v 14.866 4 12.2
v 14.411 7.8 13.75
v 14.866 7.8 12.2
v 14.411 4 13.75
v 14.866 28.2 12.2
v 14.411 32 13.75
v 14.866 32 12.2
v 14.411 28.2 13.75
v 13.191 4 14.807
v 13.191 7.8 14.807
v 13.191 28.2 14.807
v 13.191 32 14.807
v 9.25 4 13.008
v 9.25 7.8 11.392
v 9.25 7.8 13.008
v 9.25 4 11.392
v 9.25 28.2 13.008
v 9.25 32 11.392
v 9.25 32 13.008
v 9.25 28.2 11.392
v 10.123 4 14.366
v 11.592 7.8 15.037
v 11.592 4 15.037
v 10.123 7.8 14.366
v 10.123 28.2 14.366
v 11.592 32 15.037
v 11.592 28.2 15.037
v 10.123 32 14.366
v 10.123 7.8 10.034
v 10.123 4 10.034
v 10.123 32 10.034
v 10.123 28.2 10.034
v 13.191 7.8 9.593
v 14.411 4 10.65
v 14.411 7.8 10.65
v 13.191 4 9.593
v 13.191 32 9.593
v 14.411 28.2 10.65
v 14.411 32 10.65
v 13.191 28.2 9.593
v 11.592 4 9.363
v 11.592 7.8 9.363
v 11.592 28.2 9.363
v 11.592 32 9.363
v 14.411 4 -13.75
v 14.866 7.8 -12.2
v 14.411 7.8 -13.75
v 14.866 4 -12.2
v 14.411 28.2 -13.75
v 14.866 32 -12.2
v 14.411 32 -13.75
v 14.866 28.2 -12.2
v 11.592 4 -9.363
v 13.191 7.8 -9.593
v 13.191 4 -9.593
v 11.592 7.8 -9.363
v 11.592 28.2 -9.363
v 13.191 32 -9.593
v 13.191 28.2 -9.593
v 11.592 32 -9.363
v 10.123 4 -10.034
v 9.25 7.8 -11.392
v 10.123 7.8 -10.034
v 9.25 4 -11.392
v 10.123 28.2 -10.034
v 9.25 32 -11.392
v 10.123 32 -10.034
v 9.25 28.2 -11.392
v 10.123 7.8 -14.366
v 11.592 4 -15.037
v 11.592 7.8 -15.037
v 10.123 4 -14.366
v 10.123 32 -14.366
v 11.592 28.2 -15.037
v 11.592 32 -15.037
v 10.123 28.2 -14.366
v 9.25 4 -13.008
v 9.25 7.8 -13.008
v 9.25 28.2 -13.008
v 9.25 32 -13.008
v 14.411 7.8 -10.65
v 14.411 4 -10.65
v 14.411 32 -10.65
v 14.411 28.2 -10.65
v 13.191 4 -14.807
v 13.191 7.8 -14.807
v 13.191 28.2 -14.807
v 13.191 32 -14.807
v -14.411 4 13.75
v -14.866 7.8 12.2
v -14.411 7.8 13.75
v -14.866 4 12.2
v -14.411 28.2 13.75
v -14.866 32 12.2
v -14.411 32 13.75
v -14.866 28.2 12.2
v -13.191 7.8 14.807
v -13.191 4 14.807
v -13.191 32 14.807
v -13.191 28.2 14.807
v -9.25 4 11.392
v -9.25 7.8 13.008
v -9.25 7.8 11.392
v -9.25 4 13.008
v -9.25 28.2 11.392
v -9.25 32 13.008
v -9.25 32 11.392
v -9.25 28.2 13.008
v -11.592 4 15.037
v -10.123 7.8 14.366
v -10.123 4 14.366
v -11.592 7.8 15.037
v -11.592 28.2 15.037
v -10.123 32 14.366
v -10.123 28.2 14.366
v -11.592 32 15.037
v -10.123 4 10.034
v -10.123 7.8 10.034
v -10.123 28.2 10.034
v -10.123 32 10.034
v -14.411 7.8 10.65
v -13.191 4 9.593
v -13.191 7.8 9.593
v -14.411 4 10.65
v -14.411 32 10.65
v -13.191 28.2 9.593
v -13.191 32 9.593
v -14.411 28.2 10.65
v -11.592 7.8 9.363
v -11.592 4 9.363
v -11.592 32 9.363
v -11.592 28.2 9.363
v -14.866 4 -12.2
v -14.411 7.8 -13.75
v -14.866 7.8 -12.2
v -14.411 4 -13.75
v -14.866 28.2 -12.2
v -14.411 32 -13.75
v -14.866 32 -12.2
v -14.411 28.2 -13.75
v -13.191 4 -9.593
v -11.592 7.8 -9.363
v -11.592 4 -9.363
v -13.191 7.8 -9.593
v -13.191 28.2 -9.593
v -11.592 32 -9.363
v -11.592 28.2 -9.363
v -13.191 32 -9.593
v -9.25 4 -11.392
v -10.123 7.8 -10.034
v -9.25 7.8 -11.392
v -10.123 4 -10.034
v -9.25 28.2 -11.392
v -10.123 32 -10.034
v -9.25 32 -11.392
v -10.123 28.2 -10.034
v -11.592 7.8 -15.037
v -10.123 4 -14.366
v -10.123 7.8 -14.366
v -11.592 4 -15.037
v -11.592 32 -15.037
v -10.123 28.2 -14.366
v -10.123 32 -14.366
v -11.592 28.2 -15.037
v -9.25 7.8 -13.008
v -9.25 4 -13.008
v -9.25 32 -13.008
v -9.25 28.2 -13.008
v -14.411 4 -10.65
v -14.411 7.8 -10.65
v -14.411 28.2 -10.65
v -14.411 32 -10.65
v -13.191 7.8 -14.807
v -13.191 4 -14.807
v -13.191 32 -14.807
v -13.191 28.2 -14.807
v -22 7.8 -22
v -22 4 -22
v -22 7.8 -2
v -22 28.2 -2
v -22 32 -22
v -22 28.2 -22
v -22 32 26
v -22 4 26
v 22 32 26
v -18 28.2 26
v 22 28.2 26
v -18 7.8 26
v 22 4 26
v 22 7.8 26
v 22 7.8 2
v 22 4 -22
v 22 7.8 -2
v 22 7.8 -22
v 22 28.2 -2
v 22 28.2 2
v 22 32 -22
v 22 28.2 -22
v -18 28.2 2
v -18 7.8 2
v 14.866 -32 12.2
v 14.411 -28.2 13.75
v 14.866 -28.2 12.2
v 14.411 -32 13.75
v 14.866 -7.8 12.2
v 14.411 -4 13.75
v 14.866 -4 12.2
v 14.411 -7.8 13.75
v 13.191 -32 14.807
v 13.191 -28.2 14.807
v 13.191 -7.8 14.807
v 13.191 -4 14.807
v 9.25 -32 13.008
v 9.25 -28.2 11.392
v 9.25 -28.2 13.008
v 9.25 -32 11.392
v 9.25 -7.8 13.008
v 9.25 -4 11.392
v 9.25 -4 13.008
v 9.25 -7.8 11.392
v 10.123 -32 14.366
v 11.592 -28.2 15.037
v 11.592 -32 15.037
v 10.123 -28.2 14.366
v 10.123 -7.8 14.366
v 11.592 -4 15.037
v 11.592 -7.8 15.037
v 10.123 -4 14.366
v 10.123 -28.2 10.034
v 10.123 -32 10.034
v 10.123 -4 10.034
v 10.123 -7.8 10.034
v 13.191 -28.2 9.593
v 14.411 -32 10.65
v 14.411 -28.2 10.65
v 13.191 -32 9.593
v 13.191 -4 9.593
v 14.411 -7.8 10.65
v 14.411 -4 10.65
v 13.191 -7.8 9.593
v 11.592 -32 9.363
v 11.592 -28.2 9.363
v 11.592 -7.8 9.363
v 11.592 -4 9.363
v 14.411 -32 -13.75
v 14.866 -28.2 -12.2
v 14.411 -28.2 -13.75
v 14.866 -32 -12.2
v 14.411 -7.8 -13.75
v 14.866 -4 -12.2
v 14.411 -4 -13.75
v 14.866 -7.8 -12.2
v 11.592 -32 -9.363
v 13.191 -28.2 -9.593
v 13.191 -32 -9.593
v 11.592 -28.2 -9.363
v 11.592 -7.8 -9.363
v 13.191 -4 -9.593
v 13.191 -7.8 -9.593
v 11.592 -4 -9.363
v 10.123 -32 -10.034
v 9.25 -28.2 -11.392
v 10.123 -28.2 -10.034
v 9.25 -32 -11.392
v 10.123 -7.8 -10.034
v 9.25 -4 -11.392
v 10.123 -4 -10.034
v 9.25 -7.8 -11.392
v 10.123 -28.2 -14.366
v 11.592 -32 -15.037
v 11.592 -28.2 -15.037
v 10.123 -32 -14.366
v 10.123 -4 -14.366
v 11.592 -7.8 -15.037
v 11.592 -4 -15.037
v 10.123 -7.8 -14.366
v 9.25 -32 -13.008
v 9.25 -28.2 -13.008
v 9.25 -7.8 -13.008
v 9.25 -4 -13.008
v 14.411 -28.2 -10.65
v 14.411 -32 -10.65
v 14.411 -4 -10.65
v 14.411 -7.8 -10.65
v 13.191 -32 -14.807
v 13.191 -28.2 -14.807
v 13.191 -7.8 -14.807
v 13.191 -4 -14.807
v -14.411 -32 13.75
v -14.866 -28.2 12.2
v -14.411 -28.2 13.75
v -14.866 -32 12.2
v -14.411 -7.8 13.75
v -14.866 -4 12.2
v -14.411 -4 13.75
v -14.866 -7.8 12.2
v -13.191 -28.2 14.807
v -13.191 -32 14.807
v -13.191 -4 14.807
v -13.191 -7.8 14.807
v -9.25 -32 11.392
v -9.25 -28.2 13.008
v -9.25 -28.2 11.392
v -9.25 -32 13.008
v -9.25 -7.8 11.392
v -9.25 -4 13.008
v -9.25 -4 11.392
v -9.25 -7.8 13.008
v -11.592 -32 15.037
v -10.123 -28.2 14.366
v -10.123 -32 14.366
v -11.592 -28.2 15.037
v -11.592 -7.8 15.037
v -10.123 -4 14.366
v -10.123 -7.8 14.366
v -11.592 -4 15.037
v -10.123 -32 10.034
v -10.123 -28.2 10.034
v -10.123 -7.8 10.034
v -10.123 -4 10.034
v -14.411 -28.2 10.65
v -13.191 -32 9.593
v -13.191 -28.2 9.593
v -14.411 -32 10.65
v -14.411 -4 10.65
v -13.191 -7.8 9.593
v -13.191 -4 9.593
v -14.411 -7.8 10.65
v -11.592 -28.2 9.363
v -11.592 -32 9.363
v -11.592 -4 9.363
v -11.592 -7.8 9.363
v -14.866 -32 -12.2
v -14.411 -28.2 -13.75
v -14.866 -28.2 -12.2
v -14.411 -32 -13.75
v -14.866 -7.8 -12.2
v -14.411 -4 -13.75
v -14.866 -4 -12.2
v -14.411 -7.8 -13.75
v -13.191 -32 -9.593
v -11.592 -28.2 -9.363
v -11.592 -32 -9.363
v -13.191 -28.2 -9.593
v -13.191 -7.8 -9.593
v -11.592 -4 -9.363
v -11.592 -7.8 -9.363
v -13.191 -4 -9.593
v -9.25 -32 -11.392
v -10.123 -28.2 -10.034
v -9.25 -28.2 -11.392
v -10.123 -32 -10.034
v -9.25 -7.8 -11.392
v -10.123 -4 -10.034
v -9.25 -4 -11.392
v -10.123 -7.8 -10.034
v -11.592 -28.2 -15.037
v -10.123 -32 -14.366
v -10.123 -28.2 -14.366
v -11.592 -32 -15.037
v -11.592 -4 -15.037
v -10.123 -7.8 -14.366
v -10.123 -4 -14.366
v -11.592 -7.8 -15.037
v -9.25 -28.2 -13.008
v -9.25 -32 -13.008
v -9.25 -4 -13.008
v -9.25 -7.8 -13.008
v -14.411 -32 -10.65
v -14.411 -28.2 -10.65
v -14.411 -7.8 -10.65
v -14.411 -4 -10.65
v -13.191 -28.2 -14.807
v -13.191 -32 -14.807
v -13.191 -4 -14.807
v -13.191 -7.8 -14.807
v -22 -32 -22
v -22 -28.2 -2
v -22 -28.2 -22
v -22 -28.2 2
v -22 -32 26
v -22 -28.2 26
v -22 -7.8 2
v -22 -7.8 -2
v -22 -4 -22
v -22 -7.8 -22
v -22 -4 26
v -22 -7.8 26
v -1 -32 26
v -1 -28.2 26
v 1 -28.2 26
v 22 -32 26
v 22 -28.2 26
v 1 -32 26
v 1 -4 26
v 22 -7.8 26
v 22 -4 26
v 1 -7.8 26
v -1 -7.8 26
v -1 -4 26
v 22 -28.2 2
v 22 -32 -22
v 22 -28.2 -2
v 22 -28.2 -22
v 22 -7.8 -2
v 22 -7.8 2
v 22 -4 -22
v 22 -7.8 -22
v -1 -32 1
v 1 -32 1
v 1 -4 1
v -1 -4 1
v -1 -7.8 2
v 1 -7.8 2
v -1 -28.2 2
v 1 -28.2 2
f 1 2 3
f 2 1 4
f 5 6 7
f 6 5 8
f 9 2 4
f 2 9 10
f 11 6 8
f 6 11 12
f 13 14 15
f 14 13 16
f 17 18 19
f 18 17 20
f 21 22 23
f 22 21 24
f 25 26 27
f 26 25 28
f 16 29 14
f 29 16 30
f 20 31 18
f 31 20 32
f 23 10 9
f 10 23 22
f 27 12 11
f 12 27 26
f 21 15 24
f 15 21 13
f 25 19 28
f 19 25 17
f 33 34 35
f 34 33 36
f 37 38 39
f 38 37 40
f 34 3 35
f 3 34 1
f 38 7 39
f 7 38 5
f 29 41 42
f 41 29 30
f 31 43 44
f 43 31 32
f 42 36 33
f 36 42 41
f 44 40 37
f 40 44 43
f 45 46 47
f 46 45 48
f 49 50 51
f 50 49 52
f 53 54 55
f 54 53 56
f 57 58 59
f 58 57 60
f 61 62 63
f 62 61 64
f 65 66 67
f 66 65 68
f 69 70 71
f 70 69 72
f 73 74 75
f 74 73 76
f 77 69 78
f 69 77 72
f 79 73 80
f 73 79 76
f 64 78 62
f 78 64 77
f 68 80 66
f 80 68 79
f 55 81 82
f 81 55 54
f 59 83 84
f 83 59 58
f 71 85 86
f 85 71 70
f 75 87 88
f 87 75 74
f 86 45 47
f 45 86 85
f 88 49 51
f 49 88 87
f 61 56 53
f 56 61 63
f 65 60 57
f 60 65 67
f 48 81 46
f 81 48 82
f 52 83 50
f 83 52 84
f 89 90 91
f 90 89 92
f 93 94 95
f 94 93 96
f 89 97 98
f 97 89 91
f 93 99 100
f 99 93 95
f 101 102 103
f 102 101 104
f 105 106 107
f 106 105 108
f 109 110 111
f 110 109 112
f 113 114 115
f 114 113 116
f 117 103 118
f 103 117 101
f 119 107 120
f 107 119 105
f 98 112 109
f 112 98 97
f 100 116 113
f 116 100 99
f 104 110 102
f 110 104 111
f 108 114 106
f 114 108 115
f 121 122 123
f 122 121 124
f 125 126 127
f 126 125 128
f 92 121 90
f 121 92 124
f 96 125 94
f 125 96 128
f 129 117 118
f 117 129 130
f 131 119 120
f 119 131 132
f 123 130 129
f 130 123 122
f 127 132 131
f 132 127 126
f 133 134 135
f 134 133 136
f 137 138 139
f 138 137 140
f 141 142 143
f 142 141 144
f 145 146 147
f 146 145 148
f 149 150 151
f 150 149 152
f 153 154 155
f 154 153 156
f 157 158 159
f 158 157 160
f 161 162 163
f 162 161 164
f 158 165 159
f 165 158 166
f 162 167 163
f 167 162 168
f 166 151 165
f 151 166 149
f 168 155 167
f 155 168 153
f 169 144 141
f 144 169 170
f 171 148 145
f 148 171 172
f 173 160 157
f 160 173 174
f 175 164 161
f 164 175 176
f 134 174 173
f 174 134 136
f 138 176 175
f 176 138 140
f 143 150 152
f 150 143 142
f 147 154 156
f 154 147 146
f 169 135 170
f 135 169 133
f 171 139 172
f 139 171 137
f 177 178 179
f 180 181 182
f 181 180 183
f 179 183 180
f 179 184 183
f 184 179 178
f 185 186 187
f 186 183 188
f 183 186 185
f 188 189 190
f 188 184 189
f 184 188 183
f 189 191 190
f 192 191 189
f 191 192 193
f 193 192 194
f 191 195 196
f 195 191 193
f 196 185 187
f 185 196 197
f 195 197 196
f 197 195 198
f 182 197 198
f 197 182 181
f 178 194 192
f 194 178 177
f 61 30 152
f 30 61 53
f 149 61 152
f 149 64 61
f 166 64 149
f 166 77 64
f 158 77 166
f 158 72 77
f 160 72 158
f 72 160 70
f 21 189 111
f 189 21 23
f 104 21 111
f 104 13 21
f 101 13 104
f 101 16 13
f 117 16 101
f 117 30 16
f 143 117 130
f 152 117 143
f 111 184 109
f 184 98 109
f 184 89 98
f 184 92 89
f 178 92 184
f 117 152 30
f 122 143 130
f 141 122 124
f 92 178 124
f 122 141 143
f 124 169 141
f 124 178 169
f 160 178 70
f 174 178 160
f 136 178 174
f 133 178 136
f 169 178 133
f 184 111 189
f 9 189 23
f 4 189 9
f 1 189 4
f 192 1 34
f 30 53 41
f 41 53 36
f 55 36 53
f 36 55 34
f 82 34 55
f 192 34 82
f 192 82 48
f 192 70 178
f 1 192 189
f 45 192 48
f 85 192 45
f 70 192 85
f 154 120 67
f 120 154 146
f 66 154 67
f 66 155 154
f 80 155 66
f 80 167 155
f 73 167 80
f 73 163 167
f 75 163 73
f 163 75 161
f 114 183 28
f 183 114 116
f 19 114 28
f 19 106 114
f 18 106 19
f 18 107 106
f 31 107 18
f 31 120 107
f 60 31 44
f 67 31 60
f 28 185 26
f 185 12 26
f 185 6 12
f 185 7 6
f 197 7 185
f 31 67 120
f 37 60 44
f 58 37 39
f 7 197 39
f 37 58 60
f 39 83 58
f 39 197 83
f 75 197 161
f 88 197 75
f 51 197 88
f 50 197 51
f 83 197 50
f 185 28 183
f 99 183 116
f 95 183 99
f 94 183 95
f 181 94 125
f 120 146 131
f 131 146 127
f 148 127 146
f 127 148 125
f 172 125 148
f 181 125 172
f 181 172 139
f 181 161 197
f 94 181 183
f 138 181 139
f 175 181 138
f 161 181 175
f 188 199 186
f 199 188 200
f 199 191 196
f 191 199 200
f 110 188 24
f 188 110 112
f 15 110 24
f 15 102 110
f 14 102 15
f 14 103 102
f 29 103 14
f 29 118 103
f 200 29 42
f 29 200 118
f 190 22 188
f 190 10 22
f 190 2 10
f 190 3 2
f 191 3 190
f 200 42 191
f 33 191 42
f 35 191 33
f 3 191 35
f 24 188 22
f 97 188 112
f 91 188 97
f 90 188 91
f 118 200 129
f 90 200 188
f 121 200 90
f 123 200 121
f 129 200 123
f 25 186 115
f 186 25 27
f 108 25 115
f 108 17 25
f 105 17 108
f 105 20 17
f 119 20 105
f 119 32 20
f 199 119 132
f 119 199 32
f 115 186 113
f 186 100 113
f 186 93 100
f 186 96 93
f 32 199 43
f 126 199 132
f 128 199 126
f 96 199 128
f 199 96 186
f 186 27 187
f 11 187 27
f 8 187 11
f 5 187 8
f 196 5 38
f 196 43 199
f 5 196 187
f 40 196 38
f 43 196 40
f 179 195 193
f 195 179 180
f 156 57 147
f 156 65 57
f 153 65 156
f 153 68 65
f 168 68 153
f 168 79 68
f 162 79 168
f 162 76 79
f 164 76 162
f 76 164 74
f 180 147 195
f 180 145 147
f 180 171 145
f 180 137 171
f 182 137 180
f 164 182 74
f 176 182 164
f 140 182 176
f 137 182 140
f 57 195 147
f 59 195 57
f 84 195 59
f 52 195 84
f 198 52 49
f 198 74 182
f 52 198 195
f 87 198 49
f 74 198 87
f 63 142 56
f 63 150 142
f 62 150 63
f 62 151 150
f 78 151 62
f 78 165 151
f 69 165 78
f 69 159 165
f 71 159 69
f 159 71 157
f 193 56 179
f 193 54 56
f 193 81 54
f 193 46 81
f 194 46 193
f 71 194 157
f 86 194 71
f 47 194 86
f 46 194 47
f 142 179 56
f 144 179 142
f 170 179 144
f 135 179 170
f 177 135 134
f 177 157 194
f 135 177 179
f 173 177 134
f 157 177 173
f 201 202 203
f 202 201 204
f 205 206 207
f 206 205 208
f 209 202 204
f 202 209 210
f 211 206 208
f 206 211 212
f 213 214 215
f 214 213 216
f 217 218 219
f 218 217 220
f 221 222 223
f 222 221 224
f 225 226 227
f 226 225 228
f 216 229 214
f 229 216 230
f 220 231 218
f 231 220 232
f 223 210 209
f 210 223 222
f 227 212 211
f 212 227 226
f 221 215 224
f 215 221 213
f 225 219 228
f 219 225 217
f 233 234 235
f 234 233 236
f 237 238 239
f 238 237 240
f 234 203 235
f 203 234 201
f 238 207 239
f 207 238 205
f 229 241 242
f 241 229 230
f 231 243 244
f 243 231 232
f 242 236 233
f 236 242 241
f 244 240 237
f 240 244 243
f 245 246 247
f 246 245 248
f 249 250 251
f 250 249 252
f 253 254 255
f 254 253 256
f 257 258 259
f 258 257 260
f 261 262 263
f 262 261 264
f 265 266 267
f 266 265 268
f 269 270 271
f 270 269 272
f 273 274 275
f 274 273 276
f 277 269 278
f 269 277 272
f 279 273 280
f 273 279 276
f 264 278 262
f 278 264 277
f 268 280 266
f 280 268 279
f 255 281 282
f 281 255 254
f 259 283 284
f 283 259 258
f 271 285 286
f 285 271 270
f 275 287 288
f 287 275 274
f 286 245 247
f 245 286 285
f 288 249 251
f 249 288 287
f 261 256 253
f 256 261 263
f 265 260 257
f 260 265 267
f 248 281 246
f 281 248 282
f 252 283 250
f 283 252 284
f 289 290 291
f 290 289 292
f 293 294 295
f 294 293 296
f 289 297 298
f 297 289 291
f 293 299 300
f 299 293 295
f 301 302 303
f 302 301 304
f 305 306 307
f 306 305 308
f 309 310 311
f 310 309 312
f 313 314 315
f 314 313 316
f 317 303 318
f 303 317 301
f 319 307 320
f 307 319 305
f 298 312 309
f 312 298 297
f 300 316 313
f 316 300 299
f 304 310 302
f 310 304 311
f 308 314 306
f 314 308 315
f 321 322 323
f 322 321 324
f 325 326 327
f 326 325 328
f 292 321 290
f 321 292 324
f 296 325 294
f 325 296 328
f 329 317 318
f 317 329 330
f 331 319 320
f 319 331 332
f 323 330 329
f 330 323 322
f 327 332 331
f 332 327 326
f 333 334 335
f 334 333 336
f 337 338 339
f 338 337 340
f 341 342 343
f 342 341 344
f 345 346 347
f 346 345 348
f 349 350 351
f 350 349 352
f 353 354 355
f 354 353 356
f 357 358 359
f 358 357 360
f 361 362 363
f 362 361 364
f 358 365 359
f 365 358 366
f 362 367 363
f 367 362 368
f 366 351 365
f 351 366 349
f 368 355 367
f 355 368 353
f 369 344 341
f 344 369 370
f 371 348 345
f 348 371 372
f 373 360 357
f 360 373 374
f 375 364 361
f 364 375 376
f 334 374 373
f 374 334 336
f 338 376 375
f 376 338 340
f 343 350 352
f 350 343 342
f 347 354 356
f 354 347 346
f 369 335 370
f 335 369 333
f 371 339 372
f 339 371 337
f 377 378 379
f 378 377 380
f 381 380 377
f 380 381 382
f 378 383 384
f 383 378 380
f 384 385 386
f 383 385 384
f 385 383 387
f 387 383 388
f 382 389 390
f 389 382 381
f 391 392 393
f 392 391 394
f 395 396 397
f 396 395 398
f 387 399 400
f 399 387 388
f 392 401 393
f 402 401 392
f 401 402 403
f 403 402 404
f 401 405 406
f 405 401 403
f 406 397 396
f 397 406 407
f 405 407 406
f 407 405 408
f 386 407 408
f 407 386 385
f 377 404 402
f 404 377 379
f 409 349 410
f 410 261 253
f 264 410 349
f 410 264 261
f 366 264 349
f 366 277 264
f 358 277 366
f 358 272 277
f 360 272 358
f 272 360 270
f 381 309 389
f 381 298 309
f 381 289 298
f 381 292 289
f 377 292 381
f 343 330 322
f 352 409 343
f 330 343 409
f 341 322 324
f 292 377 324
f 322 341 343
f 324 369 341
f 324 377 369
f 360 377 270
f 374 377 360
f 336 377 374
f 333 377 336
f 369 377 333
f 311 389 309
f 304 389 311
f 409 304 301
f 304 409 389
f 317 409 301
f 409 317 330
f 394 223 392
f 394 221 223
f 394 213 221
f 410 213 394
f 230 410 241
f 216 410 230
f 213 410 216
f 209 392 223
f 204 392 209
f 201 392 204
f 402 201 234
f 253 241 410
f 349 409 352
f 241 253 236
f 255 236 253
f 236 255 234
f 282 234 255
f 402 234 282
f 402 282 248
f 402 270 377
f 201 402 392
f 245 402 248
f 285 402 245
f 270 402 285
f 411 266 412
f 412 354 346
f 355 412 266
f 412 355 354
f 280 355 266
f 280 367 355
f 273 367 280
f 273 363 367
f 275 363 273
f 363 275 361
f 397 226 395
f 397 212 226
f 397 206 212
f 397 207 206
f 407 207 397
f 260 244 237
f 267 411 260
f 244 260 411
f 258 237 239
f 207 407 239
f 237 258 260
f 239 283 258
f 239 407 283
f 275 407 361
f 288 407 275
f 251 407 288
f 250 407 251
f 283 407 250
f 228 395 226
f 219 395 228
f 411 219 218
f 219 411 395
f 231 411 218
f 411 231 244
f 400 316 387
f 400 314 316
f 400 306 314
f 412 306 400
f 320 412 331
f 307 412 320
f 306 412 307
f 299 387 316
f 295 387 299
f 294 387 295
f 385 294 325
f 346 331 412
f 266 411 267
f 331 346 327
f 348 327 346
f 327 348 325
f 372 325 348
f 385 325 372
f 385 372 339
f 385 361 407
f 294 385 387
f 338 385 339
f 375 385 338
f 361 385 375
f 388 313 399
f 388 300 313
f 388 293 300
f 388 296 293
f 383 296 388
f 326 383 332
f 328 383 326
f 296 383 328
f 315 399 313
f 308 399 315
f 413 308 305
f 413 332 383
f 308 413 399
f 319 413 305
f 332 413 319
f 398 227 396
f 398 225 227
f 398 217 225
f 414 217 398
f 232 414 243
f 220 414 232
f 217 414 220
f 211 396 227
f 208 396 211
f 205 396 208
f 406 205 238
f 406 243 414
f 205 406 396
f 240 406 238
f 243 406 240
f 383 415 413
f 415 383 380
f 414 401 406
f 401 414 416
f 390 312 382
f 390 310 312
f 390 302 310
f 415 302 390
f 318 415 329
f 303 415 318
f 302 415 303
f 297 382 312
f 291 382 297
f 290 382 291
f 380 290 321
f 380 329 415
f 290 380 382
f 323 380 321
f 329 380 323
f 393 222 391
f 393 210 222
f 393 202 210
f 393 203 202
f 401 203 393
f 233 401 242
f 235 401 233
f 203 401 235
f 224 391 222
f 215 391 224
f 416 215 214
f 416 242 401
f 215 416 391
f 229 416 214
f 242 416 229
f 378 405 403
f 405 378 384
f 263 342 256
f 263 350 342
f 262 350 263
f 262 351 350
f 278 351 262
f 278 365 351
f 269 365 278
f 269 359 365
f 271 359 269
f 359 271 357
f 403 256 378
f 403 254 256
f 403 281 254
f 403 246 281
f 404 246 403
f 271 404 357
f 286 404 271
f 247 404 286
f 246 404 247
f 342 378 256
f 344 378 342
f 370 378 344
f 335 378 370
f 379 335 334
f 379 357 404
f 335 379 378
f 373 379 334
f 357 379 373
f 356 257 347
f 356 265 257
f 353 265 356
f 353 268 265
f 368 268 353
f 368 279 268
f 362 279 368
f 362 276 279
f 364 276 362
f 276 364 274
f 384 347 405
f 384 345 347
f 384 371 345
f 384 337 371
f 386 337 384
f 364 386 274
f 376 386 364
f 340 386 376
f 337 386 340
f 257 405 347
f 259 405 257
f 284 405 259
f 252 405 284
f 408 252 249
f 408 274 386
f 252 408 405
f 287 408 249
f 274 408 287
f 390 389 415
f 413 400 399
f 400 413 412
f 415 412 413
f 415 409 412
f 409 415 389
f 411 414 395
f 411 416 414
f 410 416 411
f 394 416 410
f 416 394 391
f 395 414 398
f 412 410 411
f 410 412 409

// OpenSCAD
// Extrusion width, 15mm for OpenBeam.
EW=20;

// How sturdy do you want it?
WALL=4;

// Extra space on the inside.
tol=0.2;

// Which part to show
part = "both"; // [end, jig, both]


module PART(name) {
  if (part == "both") {
    render() children();
  } else if (part == name) {
    children();
  }
}

// nopheads polyhole
module polyhole(h, d, N = 0) {
  n = (N == 0) ? max(round(2 * d),3) : N;
  cylinder(h = h, r = (d / 2) / cos (180 / n), $fn = n, center=true);
}

module x_mirror() {
  children();
  mirror([1,0,0]) children();
}
module z_mirror() {
  children();
  mirror([0,0,1]) children();
}

module basic_shape(end) {
  difference() {
    translate([0,0,WALL/2]) cube([EW*2+WALL, EW+2*WALL, EW*2+WALL*2], center=true);
    translate([end?WALL*1.5:0,0,EW+WALL/2]) cube([EW*2+WALL*2, EW+tol*2, EW*2], center=true);
    translate([0,0,-EW-WALL/2]) cube([EW*3, EW+tol*2, EW*2], center=true);
    x_mirror() z_mirror() 
    translate([(EW+WALL)/2,0,(EW+WALL)/2+tol]) rotate([90,0,0]) polyhole(EW*2, 5.5);

    if (!end) translate([0,0,EW+WALL/2-1]) cube([2, EW*2, EW*2], center=true);
  }
}

PART("end") translate([0,  EW/2 + WALL*2, 0]) basic_shape(true);
PART("jig") translate([0, -EW/2 - WALL*2,0]) basic_shape(false);
